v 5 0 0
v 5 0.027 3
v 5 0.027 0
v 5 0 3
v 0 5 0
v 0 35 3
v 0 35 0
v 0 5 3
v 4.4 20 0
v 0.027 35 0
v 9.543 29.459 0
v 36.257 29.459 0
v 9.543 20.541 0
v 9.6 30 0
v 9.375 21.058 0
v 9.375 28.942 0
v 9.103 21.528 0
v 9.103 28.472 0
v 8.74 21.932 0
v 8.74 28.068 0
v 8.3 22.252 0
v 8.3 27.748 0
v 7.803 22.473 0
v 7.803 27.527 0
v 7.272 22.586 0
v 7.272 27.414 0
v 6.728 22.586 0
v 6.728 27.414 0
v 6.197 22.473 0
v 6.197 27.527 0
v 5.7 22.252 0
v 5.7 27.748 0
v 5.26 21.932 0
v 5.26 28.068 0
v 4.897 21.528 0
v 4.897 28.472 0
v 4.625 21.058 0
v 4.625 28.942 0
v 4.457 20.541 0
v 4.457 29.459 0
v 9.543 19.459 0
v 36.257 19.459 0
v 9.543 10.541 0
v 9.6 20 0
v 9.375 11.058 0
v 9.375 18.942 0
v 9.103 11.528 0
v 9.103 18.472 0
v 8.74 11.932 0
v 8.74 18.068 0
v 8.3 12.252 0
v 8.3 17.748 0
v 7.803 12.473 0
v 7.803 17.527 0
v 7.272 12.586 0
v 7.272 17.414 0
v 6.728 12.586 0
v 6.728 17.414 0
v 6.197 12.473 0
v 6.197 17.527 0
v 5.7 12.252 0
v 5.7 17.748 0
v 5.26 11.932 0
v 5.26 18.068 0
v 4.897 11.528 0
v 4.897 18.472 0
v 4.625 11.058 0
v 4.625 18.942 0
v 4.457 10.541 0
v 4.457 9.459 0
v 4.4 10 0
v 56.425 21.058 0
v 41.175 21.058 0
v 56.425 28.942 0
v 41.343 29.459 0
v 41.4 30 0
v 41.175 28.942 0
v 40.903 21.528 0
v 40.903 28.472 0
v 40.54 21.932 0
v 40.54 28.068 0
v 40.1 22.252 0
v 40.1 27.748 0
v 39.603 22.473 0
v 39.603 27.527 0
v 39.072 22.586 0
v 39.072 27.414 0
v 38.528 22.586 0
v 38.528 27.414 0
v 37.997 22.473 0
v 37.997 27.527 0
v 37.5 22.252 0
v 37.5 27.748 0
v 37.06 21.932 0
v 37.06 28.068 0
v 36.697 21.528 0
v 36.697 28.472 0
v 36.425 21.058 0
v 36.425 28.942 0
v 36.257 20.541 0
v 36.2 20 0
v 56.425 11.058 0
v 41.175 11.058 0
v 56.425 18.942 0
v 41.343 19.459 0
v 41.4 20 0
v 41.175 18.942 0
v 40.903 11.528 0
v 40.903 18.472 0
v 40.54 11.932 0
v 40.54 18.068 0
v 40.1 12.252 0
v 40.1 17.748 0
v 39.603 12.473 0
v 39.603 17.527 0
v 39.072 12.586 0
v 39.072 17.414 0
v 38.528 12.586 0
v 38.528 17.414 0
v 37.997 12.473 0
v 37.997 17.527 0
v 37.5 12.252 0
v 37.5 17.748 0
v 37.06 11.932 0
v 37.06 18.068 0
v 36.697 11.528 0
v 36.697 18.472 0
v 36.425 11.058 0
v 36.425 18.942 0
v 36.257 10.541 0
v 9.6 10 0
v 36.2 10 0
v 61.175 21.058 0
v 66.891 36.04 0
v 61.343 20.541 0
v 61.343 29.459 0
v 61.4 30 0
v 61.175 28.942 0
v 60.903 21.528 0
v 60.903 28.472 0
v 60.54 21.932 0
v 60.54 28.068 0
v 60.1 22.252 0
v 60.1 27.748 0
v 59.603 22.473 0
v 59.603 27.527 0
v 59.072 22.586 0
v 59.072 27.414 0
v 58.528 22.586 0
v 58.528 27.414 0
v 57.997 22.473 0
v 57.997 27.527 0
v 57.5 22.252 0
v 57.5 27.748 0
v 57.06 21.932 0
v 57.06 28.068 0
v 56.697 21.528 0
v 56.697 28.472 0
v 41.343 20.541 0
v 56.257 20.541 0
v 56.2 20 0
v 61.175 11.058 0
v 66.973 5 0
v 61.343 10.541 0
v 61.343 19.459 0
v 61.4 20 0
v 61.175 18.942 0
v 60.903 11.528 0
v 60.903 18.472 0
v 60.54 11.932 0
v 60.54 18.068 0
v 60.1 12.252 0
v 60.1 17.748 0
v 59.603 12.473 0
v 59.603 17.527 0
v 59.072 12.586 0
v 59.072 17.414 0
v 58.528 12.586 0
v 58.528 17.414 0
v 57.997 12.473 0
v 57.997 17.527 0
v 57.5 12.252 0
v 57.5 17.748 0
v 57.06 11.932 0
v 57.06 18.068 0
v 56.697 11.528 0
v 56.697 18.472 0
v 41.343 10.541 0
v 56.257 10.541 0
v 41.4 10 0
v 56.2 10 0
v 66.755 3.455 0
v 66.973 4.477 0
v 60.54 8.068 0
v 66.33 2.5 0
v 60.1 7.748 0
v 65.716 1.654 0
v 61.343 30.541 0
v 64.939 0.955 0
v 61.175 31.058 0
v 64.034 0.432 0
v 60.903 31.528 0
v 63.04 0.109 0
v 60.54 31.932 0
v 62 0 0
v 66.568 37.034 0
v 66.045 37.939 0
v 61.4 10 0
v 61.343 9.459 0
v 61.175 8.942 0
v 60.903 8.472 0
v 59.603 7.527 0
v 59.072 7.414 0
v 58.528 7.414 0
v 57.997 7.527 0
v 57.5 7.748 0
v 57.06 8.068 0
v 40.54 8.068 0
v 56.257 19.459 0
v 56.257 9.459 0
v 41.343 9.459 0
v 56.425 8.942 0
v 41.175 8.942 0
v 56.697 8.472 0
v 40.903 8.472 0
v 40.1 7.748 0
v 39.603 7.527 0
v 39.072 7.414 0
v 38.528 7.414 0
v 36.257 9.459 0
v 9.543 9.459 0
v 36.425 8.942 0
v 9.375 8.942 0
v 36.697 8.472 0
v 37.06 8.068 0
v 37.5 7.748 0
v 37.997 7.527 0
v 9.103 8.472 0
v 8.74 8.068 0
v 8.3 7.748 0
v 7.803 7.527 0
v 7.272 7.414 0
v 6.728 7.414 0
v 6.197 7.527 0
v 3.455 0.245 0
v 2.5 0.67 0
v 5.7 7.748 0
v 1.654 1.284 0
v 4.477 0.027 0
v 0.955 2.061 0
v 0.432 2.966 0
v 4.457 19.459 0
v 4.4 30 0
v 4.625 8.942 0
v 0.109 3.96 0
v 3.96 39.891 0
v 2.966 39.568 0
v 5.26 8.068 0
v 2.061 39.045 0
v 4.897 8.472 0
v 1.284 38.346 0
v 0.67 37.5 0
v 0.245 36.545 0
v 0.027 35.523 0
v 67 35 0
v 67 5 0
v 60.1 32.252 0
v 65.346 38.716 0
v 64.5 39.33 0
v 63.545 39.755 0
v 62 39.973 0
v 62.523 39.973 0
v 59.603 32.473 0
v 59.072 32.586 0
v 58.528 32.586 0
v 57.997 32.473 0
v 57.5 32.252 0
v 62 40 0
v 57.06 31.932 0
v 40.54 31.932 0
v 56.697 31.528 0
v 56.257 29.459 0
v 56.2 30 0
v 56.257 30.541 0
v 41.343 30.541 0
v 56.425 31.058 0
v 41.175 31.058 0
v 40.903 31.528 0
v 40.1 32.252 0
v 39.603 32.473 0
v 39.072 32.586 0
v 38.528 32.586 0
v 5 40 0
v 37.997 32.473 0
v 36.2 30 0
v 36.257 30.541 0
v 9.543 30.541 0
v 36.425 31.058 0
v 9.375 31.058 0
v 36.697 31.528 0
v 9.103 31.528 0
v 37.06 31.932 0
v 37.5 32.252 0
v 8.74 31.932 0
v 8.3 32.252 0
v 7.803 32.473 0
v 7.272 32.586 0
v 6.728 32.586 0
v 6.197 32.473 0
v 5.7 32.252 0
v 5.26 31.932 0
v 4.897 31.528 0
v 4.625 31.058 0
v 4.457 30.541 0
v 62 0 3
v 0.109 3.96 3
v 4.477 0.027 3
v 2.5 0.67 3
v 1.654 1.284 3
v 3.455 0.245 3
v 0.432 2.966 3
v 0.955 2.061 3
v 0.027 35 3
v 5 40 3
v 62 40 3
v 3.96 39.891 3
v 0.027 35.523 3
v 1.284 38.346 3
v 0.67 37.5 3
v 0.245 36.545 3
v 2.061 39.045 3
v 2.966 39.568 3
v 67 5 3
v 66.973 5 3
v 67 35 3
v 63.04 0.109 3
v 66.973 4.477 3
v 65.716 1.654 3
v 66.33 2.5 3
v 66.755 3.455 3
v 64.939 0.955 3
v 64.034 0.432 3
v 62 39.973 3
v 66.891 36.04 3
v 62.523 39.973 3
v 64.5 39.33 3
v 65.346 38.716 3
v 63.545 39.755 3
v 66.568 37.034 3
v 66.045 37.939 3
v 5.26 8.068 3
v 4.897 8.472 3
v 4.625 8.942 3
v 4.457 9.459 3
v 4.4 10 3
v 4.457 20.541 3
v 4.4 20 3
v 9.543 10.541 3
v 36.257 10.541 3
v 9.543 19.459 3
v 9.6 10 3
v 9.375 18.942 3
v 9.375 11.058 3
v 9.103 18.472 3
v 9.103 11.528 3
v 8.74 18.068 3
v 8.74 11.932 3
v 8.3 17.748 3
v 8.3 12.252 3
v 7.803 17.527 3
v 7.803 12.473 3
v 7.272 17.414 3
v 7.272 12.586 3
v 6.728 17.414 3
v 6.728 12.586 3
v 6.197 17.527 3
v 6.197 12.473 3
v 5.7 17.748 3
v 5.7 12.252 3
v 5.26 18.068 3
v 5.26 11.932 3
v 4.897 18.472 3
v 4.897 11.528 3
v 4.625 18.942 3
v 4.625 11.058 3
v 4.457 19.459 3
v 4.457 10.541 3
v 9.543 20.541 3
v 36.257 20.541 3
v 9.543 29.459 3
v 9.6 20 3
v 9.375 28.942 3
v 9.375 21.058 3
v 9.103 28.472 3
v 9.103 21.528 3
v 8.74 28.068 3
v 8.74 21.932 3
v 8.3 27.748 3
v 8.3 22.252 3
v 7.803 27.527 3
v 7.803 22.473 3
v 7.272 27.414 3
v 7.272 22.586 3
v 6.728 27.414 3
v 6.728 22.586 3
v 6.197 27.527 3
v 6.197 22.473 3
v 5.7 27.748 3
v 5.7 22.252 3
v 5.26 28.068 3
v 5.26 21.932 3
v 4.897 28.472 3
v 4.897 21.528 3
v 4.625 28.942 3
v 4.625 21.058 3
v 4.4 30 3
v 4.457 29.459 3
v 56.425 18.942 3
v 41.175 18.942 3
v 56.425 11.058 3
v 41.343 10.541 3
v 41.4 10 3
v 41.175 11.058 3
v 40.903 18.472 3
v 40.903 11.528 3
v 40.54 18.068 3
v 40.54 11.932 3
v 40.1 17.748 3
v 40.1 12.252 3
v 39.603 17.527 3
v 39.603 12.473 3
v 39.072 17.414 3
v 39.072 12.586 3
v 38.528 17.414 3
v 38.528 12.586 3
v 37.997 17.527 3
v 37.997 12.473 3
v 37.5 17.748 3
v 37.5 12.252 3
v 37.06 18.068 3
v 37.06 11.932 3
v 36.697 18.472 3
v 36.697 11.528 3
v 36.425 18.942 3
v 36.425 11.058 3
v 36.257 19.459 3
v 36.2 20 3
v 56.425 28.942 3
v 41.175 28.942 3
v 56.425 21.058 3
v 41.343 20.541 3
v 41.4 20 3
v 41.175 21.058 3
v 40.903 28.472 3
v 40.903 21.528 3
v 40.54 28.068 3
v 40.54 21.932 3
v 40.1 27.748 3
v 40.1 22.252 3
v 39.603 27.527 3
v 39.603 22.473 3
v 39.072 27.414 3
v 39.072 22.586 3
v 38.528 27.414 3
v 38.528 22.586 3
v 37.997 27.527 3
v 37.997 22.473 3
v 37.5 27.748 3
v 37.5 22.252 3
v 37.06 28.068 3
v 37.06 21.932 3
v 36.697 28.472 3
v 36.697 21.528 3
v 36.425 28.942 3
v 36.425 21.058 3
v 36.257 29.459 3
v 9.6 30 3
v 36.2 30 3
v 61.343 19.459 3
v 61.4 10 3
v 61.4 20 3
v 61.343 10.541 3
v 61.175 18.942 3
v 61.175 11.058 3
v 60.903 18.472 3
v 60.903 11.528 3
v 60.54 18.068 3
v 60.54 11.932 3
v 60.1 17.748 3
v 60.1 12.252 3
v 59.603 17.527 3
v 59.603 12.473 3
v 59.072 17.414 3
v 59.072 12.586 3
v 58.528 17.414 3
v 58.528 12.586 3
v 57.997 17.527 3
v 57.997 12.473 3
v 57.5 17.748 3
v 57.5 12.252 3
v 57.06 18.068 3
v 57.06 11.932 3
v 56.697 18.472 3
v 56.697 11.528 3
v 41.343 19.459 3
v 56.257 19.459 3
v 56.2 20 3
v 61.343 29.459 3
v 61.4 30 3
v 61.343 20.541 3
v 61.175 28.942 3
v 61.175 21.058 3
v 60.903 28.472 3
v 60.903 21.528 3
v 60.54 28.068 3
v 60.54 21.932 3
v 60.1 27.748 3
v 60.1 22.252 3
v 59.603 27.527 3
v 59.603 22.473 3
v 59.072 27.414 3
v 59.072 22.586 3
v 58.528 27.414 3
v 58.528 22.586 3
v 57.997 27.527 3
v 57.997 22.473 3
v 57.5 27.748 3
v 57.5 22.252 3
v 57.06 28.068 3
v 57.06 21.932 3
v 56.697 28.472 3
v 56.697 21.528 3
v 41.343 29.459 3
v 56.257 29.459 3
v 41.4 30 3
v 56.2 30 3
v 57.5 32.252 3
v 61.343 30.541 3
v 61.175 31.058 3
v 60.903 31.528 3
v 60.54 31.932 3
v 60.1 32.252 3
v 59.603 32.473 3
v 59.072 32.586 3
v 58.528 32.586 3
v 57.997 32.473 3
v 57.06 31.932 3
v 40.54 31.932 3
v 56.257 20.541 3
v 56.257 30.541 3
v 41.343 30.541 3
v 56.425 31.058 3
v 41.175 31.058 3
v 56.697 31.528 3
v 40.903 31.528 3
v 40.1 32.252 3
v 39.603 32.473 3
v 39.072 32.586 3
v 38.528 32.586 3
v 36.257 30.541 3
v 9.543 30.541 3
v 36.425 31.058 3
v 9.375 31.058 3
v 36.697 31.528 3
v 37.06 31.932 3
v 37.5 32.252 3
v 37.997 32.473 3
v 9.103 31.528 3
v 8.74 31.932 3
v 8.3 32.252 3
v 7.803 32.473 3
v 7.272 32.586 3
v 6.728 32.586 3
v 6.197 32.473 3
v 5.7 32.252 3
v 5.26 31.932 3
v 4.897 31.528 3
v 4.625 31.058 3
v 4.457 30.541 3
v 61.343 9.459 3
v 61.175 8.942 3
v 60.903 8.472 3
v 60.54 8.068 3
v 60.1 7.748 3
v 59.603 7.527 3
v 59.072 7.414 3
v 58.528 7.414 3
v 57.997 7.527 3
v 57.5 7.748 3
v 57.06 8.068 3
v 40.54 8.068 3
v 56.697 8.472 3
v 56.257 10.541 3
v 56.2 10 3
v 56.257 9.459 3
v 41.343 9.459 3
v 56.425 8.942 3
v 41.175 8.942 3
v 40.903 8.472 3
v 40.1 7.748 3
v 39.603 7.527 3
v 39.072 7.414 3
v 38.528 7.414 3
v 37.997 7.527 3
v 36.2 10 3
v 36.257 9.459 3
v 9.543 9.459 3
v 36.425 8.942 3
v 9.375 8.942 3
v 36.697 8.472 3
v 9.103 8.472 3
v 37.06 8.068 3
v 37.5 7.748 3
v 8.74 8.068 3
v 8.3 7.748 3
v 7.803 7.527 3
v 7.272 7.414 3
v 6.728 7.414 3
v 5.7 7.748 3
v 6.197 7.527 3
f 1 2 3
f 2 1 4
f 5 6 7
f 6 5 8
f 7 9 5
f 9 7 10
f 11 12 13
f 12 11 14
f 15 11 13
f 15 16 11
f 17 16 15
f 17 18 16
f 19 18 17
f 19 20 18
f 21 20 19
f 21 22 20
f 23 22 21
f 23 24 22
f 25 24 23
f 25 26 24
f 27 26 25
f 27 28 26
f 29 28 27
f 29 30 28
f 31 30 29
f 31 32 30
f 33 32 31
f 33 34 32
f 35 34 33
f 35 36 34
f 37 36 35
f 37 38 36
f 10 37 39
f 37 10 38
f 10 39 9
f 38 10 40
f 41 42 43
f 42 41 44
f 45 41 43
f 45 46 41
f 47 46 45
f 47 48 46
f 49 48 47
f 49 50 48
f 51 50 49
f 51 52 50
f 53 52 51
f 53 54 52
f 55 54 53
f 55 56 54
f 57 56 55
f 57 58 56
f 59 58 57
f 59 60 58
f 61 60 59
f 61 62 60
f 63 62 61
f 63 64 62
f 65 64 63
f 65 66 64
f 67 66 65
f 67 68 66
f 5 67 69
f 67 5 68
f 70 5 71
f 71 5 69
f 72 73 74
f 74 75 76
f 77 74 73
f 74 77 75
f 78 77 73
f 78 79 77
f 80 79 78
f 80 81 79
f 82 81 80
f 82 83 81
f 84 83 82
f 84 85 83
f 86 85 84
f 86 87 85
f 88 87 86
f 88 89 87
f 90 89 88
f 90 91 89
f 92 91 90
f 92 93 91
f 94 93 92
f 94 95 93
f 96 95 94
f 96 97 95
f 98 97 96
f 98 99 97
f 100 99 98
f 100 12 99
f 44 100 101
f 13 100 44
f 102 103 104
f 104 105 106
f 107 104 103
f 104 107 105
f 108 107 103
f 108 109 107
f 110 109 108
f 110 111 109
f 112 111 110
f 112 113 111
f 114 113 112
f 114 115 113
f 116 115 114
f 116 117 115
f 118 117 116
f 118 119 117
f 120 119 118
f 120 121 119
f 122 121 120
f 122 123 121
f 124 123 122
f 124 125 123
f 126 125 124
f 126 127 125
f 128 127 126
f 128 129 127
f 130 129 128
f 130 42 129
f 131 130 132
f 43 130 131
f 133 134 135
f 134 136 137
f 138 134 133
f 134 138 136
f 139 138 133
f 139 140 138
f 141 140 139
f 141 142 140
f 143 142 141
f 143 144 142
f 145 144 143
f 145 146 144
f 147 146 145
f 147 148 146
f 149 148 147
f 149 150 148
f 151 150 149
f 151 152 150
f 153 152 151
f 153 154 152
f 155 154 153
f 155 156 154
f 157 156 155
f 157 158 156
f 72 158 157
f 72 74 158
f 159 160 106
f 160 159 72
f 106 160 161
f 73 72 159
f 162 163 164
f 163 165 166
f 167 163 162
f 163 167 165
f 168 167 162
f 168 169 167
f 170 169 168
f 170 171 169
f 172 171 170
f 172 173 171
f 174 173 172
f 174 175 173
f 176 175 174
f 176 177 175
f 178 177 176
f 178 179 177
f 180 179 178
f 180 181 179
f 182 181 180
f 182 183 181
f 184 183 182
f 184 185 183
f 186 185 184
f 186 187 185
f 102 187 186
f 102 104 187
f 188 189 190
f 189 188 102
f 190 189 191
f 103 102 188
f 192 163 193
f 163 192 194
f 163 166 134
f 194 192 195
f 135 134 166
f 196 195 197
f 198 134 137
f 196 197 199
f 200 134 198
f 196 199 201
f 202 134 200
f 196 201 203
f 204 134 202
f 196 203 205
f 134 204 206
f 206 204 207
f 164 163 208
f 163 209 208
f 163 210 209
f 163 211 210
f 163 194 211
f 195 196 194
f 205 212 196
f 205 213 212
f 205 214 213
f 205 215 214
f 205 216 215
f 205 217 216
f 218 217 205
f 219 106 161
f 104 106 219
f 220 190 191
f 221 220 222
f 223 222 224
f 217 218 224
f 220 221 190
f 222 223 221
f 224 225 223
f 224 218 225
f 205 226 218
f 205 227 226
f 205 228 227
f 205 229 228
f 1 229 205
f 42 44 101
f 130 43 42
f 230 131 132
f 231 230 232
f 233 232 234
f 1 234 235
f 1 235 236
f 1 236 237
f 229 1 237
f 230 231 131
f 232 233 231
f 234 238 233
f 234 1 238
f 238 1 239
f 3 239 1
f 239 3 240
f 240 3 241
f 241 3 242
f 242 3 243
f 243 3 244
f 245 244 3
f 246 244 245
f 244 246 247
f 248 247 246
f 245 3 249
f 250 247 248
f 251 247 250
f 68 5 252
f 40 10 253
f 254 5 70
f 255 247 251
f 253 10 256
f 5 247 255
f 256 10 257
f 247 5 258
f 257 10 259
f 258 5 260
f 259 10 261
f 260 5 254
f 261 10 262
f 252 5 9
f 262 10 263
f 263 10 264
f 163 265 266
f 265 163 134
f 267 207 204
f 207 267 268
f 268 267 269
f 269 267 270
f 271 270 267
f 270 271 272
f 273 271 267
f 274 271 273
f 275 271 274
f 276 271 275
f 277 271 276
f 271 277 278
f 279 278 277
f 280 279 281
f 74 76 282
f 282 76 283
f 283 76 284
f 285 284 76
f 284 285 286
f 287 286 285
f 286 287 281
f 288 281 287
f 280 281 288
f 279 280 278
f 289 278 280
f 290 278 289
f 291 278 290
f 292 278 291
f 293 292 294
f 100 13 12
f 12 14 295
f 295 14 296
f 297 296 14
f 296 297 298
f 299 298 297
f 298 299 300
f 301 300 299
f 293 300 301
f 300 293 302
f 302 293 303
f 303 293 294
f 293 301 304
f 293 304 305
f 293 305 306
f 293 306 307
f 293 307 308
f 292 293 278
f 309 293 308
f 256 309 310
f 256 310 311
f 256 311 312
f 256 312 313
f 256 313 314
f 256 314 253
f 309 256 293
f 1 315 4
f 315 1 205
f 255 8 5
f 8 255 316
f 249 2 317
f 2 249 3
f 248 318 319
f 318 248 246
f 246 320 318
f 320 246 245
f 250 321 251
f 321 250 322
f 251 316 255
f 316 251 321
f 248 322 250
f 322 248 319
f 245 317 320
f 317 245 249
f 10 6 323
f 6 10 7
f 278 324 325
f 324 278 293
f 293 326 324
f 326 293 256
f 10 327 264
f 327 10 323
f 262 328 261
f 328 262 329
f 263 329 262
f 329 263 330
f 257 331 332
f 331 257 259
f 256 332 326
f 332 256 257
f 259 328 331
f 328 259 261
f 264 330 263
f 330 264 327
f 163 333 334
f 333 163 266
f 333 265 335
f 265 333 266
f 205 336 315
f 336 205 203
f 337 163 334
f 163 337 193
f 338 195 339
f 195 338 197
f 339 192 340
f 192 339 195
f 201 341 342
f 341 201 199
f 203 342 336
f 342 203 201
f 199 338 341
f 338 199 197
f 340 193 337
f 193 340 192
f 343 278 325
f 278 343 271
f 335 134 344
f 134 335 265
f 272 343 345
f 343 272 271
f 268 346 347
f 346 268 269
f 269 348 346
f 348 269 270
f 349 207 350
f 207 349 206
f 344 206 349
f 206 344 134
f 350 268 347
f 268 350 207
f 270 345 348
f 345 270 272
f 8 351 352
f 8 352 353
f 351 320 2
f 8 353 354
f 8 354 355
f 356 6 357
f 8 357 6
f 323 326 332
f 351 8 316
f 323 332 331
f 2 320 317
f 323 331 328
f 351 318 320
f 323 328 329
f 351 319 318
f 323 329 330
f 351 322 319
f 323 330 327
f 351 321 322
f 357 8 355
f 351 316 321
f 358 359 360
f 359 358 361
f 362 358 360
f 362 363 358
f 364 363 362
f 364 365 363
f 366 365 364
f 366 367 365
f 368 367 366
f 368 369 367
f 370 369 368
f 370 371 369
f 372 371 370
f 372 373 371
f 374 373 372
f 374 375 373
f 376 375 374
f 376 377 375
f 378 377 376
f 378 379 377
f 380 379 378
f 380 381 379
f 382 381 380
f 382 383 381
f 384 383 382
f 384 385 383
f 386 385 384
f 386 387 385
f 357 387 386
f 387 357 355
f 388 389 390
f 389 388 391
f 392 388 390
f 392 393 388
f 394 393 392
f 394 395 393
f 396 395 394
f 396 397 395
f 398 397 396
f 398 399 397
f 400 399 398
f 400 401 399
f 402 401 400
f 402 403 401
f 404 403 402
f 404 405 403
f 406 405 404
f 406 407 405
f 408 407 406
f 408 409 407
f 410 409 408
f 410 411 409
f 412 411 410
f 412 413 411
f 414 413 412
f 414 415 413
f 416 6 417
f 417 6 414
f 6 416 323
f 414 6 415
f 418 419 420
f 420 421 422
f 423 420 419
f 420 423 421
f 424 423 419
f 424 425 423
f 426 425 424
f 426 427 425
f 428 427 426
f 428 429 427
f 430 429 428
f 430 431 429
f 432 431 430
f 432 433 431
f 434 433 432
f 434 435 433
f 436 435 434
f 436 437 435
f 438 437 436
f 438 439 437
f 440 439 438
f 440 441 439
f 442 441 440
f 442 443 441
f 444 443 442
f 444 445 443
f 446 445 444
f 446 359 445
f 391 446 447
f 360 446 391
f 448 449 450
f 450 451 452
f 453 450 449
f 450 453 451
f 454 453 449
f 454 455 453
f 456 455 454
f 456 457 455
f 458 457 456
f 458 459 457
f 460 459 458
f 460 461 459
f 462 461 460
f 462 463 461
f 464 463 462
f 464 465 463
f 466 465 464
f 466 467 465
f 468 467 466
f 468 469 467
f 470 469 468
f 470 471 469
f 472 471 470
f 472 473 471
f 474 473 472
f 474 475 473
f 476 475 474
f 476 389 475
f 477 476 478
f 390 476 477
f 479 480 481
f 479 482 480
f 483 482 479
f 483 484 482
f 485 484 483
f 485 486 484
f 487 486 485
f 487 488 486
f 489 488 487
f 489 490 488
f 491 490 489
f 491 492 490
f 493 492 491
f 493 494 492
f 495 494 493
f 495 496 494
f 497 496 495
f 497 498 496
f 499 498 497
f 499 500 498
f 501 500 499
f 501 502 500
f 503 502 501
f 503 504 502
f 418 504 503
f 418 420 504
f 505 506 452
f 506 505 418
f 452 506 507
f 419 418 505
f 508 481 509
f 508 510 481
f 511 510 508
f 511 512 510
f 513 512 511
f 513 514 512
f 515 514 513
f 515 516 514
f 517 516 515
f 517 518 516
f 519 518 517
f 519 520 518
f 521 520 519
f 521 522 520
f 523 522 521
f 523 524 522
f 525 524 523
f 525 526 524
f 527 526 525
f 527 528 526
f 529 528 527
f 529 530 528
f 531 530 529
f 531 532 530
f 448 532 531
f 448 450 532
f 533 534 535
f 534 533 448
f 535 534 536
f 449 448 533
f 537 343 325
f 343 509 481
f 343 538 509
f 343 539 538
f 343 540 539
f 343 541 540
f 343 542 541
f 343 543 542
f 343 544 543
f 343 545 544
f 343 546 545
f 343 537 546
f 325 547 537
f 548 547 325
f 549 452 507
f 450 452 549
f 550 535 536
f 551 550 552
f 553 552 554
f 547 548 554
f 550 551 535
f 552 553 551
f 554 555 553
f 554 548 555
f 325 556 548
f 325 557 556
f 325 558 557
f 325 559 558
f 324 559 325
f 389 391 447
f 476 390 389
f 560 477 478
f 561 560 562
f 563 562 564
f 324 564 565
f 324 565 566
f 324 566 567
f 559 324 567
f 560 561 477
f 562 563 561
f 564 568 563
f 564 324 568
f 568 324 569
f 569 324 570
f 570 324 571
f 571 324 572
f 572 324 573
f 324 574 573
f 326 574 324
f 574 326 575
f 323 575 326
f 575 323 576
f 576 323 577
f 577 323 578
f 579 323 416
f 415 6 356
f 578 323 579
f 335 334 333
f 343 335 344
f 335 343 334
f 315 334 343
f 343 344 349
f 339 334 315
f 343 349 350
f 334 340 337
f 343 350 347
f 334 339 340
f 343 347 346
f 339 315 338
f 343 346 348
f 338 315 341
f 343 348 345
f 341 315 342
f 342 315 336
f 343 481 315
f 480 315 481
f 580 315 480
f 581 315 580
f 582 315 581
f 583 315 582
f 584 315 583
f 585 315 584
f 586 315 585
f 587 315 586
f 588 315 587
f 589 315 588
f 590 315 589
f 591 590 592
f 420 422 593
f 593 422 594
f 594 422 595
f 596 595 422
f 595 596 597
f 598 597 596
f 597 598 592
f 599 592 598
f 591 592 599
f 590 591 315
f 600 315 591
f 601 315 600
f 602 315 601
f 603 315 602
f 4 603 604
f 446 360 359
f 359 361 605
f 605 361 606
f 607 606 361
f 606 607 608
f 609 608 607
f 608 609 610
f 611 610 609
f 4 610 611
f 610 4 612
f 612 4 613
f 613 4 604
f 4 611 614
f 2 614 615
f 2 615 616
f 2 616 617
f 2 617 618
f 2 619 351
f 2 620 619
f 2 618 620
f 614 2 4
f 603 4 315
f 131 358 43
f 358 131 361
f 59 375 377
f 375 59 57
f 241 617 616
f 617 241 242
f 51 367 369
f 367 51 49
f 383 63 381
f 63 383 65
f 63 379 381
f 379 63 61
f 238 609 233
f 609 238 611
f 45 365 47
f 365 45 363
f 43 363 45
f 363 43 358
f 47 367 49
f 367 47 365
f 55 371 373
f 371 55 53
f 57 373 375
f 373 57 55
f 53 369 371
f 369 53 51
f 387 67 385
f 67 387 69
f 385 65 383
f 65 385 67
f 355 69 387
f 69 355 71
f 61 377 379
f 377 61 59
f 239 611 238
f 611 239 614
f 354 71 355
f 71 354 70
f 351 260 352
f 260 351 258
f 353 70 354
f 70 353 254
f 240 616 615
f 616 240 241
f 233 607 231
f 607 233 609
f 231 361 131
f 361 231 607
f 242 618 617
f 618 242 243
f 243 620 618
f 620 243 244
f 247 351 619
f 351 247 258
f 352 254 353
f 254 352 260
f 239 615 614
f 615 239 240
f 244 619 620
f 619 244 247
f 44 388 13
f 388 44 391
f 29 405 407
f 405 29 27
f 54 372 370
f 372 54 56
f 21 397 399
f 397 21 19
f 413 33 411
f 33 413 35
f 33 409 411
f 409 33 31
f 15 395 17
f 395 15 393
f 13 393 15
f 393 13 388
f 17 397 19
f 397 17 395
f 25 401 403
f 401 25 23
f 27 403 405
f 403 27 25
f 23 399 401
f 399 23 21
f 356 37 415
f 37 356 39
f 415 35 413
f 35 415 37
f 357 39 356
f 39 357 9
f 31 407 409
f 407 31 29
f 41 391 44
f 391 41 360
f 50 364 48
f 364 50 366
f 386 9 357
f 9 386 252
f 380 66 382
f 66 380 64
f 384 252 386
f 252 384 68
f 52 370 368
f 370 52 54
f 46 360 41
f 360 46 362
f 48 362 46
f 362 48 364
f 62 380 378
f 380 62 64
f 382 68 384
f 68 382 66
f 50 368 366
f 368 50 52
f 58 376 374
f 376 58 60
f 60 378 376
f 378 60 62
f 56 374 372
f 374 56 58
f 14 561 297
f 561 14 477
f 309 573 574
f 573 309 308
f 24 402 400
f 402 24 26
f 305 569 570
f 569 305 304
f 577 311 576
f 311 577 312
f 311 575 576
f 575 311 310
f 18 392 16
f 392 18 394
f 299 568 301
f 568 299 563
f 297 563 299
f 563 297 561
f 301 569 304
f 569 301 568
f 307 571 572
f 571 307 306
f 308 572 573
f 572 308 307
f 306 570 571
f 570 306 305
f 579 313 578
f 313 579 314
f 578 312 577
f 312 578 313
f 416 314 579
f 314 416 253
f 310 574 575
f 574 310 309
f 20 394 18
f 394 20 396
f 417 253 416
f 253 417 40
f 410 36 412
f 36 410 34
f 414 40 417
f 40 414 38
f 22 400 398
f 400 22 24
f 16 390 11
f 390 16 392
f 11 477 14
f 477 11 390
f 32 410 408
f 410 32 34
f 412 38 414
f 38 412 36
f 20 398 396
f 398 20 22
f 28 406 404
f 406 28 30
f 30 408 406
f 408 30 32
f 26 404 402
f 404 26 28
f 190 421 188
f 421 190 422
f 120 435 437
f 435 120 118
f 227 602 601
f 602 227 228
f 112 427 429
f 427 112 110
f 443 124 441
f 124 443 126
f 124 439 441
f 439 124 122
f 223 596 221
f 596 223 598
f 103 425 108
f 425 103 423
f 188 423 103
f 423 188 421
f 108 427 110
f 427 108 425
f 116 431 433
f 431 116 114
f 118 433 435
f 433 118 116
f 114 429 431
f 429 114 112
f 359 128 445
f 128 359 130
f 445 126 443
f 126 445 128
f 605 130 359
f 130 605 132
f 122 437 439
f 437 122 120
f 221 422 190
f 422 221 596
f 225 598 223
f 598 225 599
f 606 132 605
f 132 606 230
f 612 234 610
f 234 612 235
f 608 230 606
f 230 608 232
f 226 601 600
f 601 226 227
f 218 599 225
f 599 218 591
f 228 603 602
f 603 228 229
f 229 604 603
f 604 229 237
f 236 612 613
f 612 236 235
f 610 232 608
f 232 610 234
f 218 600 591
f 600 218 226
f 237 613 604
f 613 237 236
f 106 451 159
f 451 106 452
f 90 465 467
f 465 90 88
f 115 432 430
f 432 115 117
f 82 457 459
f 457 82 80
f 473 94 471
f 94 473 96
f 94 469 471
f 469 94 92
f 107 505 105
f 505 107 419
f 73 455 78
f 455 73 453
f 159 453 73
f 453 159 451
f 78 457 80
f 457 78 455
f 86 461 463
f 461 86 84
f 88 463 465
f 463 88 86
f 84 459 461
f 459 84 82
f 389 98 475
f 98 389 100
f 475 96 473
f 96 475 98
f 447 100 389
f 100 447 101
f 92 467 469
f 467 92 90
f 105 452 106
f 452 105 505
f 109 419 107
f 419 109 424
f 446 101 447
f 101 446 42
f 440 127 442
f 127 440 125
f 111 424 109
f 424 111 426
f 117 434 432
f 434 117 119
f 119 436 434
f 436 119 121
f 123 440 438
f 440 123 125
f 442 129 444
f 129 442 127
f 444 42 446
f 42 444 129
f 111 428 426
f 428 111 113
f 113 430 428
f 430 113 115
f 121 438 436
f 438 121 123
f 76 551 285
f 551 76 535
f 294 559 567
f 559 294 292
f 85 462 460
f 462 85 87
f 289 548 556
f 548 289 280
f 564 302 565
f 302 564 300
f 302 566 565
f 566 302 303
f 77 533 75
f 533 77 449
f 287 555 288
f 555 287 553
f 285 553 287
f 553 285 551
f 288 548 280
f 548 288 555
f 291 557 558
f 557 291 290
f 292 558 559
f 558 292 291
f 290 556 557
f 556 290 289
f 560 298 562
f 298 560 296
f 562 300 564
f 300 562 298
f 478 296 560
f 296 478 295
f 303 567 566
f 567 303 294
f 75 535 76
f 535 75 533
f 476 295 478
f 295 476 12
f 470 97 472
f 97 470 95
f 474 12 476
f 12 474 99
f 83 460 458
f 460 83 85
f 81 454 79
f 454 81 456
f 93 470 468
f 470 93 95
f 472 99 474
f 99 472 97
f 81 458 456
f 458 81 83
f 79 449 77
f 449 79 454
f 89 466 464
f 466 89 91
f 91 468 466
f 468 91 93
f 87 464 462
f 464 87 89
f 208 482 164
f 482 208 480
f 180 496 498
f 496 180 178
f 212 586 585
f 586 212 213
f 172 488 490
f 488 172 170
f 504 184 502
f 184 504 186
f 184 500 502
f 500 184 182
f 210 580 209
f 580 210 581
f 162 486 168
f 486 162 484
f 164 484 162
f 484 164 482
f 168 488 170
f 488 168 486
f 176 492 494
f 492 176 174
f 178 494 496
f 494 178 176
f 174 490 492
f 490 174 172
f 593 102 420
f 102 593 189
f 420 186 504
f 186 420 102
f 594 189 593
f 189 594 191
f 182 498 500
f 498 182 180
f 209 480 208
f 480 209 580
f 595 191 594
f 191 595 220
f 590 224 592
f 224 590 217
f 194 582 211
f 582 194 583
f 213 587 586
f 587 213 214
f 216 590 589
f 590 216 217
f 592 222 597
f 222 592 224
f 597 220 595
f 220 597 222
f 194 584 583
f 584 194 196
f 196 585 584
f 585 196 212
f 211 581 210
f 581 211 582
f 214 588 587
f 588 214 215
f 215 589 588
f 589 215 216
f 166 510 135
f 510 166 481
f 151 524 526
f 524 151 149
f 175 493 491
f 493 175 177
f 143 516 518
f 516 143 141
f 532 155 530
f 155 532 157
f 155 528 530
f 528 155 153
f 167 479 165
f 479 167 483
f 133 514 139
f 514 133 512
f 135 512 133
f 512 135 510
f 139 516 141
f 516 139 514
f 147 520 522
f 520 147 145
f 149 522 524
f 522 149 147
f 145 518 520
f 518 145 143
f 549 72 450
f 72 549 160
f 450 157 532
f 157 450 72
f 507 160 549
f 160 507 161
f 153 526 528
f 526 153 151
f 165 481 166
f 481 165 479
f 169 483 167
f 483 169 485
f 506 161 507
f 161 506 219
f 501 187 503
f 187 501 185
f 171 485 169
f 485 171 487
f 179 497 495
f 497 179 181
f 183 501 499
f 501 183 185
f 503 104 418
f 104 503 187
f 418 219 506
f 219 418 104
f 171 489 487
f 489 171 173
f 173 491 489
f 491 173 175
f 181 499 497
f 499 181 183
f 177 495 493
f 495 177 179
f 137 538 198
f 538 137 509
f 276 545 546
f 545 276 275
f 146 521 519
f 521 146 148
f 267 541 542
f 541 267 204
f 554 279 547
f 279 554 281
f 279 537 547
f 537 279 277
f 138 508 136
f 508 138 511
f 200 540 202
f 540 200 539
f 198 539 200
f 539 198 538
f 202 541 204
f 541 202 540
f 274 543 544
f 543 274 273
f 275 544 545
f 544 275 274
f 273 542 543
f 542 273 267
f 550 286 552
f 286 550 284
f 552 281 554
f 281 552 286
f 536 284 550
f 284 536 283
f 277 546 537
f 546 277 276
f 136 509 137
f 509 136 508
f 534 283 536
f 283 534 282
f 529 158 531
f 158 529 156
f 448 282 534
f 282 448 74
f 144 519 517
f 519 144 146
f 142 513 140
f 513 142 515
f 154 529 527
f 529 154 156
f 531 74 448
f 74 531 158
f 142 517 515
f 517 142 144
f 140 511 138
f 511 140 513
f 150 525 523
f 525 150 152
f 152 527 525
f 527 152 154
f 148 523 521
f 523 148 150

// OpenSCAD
$fn = 30;
LENGTH = 67;
WIDTH = 40;
THICK = 3;
screw_d = 5.2;

// OpenBuilds idler mount dimensions: 67x40 
// Holes X: 9,29,61 Y:10,20,30 

idler_mount();

module idler_mount(){
    difference(){
        union(){
            cube([LENGTH,WIDTH,THICK]);
                      
            
        }        
        
        // Screwholes
        translate([7,10,-0.1]) cylinder(THICK+1,d=screw_d);
        translate([7,20,-0.1]) cylinder(THICK+1,d=screw_d);
        translate([7,30,-0.1]) cylinder(THICK+1,d=screw_d);
        translate([38.8,10,-0.1]) cylinder(THICK+1,d=screw_d);
        translate([38.8,20,-0.1]) cylinder(THICK+1,d=screw_d);
        translate([38.8,30,-0.1]) cylinder(THICK+1,d=screw_d);
        translate([58.8,10,-0.1]) cylinder(THICK+1,d=screw_d);
        translate([58.8,20,-0.1]) cylinder(THICK+1,d=screw_d);
        translate([58.8,30,-0.1]) cylinder(THICK+1,d=screw_d);
        
        // Rounded corners
        translate([5,5,0]) rotate([0,0,180]) angledEnd(5);
        translate([5,WIDTH-5,0]) rotate([0,0,90]) angledEnd(5);
        translate([LENGTH-5,5,0]) rotate([0,0,270]) angledEnd(5);
        translate([LENGTH-5,WIDTH-5,0]) rotate([0,0,0]) angledEnd(5);
        
        
    }
}

module angledEnd(angleRadius) {
    difference(){
        cube([angleRadius,angleRadius,14]);
        translate([0,0,-0.5]) cylinder(h = 15, r = angleRadius, $fn = 30);
    }
}
